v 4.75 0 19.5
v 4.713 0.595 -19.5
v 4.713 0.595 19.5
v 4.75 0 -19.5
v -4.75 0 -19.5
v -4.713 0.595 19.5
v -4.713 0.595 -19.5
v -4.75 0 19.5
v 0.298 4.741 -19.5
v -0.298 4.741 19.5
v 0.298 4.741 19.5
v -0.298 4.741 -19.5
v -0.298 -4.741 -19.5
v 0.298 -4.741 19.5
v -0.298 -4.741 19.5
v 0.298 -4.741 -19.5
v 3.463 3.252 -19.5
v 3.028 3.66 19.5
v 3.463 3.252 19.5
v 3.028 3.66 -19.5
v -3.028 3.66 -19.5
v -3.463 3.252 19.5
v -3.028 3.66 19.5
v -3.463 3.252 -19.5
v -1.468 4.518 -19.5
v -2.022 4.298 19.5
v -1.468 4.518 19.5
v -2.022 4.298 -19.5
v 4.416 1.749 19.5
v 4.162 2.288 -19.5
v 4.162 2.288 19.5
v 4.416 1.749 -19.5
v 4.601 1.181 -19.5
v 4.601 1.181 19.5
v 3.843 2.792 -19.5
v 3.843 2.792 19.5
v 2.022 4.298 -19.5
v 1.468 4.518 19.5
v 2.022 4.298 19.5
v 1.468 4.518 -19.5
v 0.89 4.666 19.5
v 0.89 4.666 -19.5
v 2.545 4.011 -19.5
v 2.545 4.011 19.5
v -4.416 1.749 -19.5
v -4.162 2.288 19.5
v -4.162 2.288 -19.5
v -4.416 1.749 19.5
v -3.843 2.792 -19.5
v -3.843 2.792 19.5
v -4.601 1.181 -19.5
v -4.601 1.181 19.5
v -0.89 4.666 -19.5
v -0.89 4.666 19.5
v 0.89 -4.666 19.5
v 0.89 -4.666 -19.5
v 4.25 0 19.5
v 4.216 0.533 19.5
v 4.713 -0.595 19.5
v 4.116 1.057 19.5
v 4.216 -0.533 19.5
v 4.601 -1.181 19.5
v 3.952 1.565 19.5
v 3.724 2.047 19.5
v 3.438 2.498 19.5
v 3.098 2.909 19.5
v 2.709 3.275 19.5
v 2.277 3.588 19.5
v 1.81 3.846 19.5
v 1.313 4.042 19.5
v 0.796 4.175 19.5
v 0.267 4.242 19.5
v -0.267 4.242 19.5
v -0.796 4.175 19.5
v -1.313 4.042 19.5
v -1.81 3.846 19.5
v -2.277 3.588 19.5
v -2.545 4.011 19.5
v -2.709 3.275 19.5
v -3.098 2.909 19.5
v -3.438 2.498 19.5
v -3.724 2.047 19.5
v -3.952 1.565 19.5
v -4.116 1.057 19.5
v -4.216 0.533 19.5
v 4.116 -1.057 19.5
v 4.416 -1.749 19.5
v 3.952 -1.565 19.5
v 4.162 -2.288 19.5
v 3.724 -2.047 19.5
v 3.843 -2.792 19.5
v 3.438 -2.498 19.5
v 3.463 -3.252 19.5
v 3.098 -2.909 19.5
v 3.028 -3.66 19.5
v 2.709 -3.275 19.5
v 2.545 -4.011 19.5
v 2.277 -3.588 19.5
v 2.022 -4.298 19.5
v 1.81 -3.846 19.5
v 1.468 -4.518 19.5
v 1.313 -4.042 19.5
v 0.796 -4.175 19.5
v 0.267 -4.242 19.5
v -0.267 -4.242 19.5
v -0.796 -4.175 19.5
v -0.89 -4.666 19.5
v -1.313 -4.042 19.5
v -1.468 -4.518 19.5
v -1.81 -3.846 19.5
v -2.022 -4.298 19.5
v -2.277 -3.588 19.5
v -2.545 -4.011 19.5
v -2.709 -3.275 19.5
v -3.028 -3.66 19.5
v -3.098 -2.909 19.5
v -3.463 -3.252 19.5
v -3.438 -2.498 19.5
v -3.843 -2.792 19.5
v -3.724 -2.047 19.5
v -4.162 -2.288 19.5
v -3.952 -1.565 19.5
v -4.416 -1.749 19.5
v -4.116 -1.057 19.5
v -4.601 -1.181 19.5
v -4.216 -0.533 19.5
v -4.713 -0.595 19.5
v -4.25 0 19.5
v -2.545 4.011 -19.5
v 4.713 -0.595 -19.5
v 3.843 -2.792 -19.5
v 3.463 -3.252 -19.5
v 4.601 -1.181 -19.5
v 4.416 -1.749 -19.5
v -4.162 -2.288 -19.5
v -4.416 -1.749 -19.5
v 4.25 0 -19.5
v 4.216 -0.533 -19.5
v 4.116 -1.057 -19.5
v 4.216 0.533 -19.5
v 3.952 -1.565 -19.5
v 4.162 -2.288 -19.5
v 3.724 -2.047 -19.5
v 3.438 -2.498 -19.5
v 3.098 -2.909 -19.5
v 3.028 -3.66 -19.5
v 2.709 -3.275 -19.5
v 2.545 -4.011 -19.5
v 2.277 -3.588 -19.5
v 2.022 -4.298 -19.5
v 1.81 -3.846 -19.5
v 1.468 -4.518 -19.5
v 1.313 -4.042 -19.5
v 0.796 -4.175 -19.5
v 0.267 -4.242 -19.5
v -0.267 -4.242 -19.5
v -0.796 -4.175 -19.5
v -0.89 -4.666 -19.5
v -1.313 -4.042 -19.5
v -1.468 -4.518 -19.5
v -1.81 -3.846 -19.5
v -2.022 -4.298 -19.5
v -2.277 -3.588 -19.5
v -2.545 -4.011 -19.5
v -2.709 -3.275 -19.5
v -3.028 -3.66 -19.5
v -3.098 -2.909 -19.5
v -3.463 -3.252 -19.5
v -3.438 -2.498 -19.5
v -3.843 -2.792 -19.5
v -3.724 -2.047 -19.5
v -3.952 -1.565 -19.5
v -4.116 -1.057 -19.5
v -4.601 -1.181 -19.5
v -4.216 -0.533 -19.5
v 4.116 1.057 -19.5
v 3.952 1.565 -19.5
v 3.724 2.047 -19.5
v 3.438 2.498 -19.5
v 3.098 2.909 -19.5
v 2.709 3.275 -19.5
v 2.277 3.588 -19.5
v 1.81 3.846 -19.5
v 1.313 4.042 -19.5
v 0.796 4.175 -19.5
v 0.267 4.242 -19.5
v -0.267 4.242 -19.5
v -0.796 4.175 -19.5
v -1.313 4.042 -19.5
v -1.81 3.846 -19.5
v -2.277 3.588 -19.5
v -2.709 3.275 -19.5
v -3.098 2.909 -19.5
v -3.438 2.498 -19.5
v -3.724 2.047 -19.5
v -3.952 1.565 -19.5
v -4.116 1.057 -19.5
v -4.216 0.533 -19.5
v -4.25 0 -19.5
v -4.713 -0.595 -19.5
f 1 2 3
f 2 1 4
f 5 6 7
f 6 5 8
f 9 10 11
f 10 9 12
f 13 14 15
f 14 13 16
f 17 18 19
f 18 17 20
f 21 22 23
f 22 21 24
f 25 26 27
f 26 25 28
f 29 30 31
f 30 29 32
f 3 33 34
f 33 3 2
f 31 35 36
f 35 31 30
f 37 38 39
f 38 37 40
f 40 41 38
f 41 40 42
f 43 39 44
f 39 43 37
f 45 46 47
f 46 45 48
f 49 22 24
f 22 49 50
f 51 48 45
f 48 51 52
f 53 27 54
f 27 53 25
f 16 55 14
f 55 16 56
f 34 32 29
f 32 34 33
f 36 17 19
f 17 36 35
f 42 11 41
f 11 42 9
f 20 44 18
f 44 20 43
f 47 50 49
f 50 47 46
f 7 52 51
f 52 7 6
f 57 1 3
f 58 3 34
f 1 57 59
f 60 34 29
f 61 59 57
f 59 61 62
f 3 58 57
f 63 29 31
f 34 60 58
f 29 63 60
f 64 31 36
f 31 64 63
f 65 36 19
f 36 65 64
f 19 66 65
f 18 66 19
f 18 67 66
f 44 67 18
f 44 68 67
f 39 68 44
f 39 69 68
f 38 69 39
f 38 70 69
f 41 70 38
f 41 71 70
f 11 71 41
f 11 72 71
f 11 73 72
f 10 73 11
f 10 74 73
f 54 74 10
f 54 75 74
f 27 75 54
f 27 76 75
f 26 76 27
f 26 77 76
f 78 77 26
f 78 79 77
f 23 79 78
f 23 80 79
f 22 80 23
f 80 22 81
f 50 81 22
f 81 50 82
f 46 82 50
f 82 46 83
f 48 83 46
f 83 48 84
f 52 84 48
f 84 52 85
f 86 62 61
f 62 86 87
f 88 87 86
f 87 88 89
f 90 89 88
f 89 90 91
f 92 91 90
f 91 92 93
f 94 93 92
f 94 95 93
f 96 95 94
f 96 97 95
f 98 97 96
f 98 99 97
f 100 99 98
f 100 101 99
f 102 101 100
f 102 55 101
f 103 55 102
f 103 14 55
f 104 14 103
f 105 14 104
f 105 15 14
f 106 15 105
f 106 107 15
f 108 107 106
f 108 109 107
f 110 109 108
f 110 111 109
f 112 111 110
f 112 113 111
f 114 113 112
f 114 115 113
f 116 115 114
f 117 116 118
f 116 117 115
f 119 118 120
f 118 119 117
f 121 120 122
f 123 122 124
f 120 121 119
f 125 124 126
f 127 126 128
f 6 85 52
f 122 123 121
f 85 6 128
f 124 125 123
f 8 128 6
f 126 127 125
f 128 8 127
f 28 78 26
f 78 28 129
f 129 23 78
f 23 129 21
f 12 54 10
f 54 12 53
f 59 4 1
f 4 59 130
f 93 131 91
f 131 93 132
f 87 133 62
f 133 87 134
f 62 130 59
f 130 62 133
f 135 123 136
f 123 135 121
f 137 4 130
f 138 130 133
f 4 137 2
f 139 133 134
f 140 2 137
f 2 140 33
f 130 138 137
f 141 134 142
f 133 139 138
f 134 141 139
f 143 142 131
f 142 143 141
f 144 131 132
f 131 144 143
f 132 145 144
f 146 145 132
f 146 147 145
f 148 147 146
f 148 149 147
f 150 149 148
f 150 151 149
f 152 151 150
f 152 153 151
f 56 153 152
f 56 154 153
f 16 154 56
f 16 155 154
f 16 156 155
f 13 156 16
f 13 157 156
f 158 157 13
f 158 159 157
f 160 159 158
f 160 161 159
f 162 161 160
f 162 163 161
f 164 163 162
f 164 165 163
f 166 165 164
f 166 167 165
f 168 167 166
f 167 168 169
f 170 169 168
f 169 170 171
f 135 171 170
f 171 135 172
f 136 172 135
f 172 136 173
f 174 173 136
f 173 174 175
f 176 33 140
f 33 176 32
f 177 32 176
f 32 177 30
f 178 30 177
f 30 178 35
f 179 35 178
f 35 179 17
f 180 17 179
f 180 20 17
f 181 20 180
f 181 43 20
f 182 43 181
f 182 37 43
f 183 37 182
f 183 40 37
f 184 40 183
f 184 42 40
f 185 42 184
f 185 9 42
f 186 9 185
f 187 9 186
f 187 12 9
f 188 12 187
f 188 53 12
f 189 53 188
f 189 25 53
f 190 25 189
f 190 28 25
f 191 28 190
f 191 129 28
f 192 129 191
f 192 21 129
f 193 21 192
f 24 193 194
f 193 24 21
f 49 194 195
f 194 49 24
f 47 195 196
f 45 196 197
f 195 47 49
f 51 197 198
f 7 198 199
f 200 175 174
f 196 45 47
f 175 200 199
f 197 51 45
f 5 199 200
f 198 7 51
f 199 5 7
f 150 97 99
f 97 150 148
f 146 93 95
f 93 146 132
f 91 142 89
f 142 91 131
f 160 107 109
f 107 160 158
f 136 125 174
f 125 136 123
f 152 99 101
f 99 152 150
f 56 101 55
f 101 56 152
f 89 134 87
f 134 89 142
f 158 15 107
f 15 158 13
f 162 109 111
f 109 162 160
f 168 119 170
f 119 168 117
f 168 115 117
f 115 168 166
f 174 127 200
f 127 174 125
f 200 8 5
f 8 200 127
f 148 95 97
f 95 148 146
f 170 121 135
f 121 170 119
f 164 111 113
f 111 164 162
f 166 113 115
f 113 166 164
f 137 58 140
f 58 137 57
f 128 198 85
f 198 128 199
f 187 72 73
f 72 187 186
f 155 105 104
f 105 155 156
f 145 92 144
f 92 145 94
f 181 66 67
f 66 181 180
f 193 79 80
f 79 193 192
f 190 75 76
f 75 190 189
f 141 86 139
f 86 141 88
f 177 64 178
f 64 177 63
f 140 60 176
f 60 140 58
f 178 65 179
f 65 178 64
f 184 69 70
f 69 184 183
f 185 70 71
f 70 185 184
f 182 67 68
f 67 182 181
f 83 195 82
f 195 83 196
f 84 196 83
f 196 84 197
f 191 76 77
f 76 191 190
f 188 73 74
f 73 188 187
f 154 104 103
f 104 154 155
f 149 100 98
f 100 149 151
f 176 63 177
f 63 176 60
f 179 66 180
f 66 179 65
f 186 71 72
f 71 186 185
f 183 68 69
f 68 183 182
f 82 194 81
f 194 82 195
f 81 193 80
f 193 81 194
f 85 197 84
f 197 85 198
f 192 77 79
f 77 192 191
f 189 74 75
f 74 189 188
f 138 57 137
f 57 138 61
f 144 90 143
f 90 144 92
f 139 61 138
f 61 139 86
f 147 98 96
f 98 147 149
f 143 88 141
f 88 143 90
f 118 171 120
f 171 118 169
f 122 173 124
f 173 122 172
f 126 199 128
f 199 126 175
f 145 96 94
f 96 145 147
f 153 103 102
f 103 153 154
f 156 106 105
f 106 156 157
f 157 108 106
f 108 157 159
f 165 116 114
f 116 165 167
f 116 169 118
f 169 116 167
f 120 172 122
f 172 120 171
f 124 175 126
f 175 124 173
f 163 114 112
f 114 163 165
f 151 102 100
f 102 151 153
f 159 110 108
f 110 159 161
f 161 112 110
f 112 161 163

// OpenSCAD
$fn = 50;


difference() {
	union() {
		translate(v = [0, 0, -19.5000000000]) {
			cylinder(h = 39, r = 4.7500000000);
		}
	}
	union() {
		translate(v = [0, 0, -100.0000000000]) {
			cylinder(h = 200, r = 4.2500000000);
		}
	}
}
